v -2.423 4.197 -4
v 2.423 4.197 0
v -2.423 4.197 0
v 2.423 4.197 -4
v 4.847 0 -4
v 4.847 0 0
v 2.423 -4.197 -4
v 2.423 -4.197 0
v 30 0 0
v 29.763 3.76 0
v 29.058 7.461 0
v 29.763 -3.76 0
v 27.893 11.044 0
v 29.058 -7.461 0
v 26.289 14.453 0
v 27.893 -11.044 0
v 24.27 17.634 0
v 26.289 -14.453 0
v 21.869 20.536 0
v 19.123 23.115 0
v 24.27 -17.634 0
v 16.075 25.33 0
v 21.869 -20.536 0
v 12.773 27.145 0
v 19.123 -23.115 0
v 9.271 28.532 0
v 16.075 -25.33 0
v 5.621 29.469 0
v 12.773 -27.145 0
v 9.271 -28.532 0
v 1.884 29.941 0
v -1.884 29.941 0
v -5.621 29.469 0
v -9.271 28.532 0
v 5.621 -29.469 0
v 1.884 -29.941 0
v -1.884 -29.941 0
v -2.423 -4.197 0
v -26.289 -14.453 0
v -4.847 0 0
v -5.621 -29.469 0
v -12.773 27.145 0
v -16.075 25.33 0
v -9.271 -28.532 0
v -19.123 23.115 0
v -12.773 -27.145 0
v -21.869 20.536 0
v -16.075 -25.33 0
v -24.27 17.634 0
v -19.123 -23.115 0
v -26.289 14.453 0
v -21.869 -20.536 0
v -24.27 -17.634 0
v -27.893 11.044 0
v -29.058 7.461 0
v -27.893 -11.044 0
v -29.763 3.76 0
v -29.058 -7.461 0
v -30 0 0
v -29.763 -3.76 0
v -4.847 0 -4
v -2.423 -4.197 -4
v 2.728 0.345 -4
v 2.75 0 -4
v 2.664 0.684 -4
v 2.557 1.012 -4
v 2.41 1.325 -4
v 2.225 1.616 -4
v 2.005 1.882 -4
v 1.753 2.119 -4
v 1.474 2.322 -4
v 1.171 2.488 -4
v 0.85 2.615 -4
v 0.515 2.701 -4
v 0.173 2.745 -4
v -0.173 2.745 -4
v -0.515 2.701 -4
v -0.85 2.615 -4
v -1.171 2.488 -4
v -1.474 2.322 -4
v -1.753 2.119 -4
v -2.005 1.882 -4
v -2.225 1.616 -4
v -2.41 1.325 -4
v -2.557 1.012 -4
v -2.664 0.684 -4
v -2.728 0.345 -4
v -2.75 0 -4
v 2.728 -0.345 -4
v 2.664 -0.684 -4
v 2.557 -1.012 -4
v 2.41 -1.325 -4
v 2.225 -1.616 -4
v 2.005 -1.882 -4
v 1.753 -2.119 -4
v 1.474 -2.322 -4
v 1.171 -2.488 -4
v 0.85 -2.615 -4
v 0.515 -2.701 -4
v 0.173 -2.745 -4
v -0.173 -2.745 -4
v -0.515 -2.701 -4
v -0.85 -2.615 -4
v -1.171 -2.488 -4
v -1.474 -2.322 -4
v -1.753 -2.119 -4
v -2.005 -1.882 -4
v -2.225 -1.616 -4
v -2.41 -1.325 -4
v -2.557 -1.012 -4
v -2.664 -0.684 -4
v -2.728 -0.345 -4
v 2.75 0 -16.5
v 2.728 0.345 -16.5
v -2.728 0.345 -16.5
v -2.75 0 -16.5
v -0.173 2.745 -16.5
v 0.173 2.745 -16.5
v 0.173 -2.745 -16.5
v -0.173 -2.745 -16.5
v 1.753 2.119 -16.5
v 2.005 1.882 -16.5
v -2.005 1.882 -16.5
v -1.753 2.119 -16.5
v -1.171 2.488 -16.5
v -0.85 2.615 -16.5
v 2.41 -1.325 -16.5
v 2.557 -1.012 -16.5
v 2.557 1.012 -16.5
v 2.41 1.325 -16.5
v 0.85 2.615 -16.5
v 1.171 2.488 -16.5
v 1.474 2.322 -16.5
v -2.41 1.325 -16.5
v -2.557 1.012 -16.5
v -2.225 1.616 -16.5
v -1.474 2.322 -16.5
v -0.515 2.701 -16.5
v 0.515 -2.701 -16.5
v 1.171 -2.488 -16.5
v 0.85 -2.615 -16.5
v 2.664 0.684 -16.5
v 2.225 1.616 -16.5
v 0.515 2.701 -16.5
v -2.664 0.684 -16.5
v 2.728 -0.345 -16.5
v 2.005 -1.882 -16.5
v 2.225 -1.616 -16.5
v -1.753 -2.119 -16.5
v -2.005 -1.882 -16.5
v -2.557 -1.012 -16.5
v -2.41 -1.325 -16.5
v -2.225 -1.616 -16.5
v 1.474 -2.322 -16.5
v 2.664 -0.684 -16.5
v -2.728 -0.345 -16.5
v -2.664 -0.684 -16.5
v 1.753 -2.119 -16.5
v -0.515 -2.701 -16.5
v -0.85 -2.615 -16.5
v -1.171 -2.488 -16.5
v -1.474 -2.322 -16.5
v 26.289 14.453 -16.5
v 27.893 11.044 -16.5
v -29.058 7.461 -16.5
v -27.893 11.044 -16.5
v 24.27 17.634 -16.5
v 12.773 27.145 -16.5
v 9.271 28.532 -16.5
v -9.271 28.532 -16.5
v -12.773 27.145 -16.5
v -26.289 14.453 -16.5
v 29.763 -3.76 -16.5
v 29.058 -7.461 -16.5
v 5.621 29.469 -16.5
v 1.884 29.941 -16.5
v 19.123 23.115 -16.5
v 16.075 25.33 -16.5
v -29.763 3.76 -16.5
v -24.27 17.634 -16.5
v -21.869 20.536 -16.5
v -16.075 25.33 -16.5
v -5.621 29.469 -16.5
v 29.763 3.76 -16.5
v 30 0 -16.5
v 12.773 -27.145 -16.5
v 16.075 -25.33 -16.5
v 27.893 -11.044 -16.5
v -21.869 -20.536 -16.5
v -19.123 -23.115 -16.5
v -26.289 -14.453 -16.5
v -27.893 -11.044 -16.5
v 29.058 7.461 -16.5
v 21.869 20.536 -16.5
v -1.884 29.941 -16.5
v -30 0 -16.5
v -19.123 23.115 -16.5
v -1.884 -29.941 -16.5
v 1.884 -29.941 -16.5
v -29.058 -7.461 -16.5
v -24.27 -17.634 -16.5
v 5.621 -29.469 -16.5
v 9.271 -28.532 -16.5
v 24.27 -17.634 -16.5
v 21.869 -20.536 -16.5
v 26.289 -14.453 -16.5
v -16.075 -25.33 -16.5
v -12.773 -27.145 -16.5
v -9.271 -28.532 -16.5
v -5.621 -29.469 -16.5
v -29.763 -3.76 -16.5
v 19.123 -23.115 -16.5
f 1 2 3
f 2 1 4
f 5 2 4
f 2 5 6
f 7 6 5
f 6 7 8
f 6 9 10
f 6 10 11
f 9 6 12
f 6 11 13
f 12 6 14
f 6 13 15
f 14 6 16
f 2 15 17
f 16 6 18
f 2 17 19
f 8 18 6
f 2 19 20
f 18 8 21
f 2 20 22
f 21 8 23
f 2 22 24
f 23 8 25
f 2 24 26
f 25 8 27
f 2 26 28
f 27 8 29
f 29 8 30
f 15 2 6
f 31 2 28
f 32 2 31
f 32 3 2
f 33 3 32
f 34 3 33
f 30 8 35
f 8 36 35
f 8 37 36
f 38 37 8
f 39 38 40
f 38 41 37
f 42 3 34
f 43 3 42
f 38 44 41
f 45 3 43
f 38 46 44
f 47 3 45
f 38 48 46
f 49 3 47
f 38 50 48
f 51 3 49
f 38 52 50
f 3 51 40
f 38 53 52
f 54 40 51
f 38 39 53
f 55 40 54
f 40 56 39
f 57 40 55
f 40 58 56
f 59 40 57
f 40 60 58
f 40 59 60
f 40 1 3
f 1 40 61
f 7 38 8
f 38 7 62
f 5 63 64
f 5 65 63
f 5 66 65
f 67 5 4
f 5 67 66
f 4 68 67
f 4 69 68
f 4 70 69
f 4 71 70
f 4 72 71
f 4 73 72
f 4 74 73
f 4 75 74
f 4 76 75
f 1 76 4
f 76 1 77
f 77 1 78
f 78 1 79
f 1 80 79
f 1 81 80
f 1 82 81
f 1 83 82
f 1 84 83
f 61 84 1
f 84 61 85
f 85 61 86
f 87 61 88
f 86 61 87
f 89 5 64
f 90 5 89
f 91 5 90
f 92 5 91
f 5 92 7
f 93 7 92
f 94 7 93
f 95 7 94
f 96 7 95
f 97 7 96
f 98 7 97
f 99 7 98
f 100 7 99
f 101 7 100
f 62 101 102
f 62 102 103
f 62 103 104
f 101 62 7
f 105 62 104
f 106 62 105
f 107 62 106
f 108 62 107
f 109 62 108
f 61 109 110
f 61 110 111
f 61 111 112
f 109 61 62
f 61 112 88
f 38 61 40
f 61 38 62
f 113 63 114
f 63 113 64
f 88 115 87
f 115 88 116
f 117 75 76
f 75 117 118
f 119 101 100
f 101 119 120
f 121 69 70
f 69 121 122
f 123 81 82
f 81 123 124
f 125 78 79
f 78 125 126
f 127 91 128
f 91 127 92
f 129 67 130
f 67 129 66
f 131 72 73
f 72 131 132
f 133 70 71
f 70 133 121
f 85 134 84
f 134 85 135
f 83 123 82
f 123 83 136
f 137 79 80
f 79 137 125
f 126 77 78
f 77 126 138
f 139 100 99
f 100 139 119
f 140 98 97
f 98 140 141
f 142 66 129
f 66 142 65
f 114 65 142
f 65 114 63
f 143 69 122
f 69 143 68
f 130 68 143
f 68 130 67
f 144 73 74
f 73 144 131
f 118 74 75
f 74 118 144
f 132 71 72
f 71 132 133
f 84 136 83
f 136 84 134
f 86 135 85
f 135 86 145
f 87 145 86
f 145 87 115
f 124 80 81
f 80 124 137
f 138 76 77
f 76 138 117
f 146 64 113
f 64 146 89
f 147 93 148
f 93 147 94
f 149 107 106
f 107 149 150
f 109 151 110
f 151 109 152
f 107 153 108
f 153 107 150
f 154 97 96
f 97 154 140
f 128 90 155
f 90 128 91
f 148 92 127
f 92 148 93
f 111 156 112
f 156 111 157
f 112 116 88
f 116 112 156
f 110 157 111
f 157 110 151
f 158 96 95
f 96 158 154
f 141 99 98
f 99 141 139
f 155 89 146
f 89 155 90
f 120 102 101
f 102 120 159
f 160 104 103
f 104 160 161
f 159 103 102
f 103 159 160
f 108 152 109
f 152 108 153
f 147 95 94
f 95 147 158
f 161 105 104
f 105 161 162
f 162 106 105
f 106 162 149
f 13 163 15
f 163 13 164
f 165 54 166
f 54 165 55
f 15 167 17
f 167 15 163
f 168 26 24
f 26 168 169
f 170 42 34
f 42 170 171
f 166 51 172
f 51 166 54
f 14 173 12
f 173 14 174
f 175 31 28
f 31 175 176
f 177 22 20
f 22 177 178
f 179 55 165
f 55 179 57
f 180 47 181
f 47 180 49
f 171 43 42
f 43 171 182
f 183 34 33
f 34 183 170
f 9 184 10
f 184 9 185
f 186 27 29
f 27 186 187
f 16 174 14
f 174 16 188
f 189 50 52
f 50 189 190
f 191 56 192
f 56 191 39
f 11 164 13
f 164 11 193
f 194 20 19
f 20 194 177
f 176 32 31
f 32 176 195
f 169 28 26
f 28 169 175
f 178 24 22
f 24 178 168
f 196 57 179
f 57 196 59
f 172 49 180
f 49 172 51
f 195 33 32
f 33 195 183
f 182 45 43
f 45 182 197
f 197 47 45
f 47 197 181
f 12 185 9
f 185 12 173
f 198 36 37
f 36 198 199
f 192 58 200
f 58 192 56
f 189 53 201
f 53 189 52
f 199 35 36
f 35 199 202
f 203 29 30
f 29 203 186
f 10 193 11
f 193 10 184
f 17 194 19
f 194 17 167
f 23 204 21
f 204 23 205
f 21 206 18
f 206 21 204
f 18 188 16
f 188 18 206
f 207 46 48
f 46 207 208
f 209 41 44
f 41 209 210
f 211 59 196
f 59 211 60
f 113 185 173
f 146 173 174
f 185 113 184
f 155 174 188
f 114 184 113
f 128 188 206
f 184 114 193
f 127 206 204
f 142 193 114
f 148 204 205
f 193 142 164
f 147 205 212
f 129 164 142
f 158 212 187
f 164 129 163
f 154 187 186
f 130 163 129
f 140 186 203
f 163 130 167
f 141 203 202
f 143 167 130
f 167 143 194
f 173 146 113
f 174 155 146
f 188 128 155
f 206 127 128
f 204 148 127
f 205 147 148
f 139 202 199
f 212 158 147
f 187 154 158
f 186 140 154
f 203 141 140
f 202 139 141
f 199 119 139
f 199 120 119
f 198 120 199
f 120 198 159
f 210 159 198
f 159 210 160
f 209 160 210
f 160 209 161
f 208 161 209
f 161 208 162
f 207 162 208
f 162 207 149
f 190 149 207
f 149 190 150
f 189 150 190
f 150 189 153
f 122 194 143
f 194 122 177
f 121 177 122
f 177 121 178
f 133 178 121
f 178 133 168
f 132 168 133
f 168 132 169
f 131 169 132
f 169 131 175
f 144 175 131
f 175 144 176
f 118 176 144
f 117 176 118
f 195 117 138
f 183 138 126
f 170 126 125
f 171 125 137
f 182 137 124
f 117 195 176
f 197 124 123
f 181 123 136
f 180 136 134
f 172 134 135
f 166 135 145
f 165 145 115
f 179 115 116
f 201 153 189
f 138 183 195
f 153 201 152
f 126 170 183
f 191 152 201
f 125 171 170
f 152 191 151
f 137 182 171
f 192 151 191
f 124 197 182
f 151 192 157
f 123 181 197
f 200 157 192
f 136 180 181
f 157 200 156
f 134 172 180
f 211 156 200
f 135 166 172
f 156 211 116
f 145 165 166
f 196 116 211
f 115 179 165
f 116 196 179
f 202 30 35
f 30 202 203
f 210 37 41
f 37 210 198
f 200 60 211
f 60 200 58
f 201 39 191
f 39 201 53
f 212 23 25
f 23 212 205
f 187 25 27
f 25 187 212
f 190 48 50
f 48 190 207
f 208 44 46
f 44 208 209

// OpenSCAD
$fn = 50;

difference() {
	union() {
		translate(v = [0, 0, -16.5]) {
			cylinder(h = 16.5, r = 30.0);
		}
	}
	union() {
		translate(v = [0, 0, 0]) {
			rotate(a = [0, 0, 0]) {
				difference() {
					union() {
						translate(v = [0, 0, -4]) {
							linear_extrude(height = 4) {
								polygon(points = [[4.8468, 0.0], [2.4234000000000004, 4.197451927062417], [-2.423399999999999, 4.197451927062417], [-4.8468, 5.935618106107392e-16], [-2.423400000000002, -4.197451927062416], [2.423399999999997, -4.197451927062419]]);
							}
						}
					}
					union();
				}
			}
		}
		#translate(v = [0, 0, -100.0]) {
			cylinder(h = 200, r = 2.75);
		}
	}
}
